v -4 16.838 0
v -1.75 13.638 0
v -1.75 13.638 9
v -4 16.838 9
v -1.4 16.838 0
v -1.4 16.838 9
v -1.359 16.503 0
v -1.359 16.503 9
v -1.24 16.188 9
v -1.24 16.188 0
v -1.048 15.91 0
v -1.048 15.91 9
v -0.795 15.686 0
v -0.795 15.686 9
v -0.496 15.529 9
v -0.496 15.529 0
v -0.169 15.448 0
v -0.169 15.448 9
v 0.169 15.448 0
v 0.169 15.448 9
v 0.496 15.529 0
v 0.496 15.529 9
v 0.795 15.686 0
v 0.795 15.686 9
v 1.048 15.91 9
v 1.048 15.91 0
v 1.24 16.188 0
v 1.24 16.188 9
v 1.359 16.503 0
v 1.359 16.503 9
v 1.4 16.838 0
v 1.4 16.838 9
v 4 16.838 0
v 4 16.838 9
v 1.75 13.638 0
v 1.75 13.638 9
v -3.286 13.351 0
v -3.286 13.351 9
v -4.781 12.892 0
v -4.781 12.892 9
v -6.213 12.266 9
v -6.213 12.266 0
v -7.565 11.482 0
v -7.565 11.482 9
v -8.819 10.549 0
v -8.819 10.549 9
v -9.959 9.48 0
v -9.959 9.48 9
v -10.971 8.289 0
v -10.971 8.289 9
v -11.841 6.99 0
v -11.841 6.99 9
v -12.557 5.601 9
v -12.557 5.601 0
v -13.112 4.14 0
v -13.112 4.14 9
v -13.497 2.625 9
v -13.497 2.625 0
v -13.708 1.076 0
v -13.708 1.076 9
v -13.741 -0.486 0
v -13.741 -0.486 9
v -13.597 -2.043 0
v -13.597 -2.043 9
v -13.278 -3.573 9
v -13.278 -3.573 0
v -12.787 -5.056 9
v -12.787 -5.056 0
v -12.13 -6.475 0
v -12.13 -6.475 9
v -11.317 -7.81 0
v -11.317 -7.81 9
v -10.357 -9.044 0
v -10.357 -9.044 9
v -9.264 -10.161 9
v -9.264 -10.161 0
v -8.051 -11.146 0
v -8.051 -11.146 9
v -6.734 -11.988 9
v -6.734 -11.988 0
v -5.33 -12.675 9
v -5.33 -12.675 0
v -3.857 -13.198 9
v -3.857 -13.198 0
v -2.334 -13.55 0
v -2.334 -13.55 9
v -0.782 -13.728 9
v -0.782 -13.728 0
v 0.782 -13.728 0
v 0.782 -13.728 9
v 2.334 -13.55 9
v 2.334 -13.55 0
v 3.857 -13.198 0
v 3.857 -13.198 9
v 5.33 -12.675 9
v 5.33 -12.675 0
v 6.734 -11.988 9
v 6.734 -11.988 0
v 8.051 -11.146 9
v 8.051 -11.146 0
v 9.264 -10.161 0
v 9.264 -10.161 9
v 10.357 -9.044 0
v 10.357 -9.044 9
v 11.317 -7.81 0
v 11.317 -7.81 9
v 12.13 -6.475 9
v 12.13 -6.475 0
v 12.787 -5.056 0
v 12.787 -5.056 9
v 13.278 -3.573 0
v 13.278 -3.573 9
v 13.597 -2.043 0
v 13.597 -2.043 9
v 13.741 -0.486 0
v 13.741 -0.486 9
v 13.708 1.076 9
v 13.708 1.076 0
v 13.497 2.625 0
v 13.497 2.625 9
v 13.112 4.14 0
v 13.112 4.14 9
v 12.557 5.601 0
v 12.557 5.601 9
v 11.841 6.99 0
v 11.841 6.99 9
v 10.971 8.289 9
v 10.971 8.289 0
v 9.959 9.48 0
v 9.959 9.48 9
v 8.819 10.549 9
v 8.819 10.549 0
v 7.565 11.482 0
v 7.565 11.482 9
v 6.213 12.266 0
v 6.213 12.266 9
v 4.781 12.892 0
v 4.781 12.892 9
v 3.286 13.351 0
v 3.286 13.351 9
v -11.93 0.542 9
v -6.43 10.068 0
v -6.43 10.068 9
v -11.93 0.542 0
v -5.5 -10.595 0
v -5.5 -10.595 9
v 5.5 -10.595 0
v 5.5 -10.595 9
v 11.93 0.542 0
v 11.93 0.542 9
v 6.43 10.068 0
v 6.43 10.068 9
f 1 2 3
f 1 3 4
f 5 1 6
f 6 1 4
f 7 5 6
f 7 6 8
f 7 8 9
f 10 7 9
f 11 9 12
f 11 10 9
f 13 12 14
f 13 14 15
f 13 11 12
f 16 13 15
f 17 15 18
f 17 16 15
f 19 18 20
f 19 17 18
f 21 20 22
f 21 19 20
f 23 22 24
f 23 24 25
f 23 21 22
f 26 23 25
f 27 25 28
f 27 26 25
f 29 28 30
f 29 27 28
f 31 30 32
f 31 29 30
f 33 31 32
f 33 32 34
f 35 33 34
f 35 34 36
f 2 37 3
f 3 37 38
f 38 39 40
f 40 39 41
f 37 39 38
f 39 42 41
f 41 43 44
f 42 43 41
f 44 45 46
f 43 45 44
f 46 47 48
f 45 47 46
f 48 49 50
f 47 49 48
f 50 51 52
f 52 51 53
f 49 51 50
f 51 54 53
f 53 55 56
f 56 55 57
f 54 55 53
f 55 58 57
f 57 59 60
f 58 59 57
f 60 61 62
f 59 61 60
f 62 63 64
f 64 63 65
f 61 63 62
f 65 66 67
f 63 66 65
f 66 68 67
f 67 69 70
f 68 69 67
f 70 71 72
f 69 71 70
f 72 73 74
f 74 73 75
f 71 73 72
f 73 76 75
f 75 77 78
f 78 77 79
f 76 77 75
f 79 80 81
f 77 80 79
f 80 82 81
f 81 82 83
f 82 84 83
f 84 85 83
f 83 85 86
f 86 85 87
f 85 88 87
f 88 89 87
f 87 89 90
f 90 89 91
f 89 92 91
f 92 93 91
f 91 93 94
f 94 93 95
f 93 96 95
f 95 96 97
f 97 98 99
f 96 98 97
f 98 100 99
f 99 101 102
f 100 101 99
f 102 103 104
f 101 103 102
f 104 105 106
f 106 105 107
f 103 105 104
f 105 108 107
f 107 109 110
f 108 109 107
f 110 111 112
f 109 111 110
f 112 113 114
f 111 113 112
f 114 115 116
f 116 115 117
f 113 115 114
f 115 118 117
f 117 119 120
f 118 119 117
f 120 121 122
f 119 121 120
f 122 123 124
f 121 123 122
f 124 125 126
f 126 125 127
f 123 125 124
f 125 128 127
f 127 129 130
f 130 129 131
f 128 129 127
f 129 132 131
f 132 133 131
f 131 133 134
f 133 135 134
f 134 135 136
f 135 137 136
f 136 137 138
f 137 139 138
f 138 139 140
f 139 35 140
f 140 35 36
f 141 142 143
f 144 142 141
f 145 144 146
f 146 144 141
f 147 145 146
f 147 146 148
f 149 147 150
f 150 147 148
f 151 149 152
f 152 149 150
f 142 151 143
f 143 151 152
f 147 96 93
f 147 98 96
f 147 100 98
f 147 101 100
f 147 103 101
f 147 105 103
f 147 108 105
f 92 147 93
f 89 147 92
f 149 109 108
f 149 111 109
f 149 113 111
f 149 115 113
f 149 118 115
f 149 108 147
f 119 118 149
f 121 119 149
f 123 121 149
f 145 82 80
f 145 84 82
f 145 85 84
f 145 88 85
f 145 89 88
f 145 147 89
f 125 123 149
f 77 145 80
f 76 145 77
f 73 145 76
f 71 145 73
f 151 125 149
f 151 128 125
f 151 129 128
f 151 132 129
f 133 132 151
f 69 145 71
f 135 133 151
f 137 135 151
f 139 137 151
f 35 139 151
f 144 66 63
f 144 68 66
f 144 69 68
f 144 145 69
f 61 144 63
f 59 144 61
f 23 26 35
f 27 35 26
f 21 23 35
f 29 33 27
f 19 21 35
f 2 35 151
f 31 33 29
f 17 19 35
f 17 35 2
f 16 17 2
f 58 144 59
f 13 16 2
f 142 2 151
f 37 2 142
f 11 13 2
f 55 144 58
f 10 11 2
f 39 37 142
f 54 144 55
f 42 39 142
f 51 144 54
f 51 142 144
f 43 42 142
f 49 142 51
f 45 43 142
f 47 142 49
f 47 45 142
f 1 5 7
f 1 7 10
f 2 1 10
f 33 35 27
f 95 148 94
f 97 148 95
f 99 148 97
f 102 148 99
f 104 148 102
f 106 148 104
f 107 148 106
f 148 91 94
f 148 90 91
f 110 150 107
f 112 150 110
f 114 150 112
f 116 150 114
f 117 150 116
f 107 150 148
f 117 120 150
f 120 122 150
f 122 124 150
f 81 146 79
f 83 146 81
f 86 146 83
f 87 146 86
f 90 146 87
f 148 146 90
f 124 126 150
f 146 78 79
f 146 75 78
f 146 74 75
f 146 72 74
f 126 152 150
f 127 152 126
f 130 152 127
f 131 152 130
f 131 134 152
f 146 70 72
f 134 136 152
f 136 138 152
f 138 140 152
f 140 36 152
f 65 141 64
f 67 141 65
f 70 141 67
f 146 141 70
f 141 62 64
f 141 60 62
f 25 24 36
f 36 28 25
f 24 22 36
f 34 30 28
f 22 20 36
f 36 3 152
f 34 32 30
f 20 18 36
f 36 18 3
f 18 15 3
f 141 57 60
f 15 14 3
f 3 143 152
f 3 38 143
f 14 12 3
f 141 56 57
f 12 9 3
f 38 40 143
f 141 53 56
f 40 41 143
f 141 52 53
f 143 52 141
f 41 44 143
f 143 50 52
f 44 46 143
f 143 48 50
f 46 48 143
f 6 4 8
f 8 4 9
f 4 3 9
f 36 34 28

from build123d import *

# Parameters (mm, degrees)
PAD_DEPTH = 9


with BuildPart() as part:
    # Sketch → Pad (new body)
    with BuildSketch(Plane.XY):
        with BuildLine():
            Line((-1.75, 13.638182), (-4, 16.838182))
            Line((-1.4, 16.838182), (-4, 16.838182))
            ThreePointArc((-1.4, 16.838182), (0, 15.438182), (1.4, 16.838182))
            Line((1.4, 16.838182), (4, 16.838182))
            Line((4, 16.838182), (1.75, 13.638182))
            ThreePointArc((-1.75, 13.638182), (0, -13.75), (1.75, 13.638182))
        make_face()
        Polygon((-6.43, 10.068182), (6.43, 10.068182), (11.93, 0.541902), (5.5, -10.595184), (-5.5, -10.595184), (-11.93, 0.541902), align=None, mode=Mode.SUBTRACT)
    extrude(amount=PAD_DEPTH)


solid = part.part
